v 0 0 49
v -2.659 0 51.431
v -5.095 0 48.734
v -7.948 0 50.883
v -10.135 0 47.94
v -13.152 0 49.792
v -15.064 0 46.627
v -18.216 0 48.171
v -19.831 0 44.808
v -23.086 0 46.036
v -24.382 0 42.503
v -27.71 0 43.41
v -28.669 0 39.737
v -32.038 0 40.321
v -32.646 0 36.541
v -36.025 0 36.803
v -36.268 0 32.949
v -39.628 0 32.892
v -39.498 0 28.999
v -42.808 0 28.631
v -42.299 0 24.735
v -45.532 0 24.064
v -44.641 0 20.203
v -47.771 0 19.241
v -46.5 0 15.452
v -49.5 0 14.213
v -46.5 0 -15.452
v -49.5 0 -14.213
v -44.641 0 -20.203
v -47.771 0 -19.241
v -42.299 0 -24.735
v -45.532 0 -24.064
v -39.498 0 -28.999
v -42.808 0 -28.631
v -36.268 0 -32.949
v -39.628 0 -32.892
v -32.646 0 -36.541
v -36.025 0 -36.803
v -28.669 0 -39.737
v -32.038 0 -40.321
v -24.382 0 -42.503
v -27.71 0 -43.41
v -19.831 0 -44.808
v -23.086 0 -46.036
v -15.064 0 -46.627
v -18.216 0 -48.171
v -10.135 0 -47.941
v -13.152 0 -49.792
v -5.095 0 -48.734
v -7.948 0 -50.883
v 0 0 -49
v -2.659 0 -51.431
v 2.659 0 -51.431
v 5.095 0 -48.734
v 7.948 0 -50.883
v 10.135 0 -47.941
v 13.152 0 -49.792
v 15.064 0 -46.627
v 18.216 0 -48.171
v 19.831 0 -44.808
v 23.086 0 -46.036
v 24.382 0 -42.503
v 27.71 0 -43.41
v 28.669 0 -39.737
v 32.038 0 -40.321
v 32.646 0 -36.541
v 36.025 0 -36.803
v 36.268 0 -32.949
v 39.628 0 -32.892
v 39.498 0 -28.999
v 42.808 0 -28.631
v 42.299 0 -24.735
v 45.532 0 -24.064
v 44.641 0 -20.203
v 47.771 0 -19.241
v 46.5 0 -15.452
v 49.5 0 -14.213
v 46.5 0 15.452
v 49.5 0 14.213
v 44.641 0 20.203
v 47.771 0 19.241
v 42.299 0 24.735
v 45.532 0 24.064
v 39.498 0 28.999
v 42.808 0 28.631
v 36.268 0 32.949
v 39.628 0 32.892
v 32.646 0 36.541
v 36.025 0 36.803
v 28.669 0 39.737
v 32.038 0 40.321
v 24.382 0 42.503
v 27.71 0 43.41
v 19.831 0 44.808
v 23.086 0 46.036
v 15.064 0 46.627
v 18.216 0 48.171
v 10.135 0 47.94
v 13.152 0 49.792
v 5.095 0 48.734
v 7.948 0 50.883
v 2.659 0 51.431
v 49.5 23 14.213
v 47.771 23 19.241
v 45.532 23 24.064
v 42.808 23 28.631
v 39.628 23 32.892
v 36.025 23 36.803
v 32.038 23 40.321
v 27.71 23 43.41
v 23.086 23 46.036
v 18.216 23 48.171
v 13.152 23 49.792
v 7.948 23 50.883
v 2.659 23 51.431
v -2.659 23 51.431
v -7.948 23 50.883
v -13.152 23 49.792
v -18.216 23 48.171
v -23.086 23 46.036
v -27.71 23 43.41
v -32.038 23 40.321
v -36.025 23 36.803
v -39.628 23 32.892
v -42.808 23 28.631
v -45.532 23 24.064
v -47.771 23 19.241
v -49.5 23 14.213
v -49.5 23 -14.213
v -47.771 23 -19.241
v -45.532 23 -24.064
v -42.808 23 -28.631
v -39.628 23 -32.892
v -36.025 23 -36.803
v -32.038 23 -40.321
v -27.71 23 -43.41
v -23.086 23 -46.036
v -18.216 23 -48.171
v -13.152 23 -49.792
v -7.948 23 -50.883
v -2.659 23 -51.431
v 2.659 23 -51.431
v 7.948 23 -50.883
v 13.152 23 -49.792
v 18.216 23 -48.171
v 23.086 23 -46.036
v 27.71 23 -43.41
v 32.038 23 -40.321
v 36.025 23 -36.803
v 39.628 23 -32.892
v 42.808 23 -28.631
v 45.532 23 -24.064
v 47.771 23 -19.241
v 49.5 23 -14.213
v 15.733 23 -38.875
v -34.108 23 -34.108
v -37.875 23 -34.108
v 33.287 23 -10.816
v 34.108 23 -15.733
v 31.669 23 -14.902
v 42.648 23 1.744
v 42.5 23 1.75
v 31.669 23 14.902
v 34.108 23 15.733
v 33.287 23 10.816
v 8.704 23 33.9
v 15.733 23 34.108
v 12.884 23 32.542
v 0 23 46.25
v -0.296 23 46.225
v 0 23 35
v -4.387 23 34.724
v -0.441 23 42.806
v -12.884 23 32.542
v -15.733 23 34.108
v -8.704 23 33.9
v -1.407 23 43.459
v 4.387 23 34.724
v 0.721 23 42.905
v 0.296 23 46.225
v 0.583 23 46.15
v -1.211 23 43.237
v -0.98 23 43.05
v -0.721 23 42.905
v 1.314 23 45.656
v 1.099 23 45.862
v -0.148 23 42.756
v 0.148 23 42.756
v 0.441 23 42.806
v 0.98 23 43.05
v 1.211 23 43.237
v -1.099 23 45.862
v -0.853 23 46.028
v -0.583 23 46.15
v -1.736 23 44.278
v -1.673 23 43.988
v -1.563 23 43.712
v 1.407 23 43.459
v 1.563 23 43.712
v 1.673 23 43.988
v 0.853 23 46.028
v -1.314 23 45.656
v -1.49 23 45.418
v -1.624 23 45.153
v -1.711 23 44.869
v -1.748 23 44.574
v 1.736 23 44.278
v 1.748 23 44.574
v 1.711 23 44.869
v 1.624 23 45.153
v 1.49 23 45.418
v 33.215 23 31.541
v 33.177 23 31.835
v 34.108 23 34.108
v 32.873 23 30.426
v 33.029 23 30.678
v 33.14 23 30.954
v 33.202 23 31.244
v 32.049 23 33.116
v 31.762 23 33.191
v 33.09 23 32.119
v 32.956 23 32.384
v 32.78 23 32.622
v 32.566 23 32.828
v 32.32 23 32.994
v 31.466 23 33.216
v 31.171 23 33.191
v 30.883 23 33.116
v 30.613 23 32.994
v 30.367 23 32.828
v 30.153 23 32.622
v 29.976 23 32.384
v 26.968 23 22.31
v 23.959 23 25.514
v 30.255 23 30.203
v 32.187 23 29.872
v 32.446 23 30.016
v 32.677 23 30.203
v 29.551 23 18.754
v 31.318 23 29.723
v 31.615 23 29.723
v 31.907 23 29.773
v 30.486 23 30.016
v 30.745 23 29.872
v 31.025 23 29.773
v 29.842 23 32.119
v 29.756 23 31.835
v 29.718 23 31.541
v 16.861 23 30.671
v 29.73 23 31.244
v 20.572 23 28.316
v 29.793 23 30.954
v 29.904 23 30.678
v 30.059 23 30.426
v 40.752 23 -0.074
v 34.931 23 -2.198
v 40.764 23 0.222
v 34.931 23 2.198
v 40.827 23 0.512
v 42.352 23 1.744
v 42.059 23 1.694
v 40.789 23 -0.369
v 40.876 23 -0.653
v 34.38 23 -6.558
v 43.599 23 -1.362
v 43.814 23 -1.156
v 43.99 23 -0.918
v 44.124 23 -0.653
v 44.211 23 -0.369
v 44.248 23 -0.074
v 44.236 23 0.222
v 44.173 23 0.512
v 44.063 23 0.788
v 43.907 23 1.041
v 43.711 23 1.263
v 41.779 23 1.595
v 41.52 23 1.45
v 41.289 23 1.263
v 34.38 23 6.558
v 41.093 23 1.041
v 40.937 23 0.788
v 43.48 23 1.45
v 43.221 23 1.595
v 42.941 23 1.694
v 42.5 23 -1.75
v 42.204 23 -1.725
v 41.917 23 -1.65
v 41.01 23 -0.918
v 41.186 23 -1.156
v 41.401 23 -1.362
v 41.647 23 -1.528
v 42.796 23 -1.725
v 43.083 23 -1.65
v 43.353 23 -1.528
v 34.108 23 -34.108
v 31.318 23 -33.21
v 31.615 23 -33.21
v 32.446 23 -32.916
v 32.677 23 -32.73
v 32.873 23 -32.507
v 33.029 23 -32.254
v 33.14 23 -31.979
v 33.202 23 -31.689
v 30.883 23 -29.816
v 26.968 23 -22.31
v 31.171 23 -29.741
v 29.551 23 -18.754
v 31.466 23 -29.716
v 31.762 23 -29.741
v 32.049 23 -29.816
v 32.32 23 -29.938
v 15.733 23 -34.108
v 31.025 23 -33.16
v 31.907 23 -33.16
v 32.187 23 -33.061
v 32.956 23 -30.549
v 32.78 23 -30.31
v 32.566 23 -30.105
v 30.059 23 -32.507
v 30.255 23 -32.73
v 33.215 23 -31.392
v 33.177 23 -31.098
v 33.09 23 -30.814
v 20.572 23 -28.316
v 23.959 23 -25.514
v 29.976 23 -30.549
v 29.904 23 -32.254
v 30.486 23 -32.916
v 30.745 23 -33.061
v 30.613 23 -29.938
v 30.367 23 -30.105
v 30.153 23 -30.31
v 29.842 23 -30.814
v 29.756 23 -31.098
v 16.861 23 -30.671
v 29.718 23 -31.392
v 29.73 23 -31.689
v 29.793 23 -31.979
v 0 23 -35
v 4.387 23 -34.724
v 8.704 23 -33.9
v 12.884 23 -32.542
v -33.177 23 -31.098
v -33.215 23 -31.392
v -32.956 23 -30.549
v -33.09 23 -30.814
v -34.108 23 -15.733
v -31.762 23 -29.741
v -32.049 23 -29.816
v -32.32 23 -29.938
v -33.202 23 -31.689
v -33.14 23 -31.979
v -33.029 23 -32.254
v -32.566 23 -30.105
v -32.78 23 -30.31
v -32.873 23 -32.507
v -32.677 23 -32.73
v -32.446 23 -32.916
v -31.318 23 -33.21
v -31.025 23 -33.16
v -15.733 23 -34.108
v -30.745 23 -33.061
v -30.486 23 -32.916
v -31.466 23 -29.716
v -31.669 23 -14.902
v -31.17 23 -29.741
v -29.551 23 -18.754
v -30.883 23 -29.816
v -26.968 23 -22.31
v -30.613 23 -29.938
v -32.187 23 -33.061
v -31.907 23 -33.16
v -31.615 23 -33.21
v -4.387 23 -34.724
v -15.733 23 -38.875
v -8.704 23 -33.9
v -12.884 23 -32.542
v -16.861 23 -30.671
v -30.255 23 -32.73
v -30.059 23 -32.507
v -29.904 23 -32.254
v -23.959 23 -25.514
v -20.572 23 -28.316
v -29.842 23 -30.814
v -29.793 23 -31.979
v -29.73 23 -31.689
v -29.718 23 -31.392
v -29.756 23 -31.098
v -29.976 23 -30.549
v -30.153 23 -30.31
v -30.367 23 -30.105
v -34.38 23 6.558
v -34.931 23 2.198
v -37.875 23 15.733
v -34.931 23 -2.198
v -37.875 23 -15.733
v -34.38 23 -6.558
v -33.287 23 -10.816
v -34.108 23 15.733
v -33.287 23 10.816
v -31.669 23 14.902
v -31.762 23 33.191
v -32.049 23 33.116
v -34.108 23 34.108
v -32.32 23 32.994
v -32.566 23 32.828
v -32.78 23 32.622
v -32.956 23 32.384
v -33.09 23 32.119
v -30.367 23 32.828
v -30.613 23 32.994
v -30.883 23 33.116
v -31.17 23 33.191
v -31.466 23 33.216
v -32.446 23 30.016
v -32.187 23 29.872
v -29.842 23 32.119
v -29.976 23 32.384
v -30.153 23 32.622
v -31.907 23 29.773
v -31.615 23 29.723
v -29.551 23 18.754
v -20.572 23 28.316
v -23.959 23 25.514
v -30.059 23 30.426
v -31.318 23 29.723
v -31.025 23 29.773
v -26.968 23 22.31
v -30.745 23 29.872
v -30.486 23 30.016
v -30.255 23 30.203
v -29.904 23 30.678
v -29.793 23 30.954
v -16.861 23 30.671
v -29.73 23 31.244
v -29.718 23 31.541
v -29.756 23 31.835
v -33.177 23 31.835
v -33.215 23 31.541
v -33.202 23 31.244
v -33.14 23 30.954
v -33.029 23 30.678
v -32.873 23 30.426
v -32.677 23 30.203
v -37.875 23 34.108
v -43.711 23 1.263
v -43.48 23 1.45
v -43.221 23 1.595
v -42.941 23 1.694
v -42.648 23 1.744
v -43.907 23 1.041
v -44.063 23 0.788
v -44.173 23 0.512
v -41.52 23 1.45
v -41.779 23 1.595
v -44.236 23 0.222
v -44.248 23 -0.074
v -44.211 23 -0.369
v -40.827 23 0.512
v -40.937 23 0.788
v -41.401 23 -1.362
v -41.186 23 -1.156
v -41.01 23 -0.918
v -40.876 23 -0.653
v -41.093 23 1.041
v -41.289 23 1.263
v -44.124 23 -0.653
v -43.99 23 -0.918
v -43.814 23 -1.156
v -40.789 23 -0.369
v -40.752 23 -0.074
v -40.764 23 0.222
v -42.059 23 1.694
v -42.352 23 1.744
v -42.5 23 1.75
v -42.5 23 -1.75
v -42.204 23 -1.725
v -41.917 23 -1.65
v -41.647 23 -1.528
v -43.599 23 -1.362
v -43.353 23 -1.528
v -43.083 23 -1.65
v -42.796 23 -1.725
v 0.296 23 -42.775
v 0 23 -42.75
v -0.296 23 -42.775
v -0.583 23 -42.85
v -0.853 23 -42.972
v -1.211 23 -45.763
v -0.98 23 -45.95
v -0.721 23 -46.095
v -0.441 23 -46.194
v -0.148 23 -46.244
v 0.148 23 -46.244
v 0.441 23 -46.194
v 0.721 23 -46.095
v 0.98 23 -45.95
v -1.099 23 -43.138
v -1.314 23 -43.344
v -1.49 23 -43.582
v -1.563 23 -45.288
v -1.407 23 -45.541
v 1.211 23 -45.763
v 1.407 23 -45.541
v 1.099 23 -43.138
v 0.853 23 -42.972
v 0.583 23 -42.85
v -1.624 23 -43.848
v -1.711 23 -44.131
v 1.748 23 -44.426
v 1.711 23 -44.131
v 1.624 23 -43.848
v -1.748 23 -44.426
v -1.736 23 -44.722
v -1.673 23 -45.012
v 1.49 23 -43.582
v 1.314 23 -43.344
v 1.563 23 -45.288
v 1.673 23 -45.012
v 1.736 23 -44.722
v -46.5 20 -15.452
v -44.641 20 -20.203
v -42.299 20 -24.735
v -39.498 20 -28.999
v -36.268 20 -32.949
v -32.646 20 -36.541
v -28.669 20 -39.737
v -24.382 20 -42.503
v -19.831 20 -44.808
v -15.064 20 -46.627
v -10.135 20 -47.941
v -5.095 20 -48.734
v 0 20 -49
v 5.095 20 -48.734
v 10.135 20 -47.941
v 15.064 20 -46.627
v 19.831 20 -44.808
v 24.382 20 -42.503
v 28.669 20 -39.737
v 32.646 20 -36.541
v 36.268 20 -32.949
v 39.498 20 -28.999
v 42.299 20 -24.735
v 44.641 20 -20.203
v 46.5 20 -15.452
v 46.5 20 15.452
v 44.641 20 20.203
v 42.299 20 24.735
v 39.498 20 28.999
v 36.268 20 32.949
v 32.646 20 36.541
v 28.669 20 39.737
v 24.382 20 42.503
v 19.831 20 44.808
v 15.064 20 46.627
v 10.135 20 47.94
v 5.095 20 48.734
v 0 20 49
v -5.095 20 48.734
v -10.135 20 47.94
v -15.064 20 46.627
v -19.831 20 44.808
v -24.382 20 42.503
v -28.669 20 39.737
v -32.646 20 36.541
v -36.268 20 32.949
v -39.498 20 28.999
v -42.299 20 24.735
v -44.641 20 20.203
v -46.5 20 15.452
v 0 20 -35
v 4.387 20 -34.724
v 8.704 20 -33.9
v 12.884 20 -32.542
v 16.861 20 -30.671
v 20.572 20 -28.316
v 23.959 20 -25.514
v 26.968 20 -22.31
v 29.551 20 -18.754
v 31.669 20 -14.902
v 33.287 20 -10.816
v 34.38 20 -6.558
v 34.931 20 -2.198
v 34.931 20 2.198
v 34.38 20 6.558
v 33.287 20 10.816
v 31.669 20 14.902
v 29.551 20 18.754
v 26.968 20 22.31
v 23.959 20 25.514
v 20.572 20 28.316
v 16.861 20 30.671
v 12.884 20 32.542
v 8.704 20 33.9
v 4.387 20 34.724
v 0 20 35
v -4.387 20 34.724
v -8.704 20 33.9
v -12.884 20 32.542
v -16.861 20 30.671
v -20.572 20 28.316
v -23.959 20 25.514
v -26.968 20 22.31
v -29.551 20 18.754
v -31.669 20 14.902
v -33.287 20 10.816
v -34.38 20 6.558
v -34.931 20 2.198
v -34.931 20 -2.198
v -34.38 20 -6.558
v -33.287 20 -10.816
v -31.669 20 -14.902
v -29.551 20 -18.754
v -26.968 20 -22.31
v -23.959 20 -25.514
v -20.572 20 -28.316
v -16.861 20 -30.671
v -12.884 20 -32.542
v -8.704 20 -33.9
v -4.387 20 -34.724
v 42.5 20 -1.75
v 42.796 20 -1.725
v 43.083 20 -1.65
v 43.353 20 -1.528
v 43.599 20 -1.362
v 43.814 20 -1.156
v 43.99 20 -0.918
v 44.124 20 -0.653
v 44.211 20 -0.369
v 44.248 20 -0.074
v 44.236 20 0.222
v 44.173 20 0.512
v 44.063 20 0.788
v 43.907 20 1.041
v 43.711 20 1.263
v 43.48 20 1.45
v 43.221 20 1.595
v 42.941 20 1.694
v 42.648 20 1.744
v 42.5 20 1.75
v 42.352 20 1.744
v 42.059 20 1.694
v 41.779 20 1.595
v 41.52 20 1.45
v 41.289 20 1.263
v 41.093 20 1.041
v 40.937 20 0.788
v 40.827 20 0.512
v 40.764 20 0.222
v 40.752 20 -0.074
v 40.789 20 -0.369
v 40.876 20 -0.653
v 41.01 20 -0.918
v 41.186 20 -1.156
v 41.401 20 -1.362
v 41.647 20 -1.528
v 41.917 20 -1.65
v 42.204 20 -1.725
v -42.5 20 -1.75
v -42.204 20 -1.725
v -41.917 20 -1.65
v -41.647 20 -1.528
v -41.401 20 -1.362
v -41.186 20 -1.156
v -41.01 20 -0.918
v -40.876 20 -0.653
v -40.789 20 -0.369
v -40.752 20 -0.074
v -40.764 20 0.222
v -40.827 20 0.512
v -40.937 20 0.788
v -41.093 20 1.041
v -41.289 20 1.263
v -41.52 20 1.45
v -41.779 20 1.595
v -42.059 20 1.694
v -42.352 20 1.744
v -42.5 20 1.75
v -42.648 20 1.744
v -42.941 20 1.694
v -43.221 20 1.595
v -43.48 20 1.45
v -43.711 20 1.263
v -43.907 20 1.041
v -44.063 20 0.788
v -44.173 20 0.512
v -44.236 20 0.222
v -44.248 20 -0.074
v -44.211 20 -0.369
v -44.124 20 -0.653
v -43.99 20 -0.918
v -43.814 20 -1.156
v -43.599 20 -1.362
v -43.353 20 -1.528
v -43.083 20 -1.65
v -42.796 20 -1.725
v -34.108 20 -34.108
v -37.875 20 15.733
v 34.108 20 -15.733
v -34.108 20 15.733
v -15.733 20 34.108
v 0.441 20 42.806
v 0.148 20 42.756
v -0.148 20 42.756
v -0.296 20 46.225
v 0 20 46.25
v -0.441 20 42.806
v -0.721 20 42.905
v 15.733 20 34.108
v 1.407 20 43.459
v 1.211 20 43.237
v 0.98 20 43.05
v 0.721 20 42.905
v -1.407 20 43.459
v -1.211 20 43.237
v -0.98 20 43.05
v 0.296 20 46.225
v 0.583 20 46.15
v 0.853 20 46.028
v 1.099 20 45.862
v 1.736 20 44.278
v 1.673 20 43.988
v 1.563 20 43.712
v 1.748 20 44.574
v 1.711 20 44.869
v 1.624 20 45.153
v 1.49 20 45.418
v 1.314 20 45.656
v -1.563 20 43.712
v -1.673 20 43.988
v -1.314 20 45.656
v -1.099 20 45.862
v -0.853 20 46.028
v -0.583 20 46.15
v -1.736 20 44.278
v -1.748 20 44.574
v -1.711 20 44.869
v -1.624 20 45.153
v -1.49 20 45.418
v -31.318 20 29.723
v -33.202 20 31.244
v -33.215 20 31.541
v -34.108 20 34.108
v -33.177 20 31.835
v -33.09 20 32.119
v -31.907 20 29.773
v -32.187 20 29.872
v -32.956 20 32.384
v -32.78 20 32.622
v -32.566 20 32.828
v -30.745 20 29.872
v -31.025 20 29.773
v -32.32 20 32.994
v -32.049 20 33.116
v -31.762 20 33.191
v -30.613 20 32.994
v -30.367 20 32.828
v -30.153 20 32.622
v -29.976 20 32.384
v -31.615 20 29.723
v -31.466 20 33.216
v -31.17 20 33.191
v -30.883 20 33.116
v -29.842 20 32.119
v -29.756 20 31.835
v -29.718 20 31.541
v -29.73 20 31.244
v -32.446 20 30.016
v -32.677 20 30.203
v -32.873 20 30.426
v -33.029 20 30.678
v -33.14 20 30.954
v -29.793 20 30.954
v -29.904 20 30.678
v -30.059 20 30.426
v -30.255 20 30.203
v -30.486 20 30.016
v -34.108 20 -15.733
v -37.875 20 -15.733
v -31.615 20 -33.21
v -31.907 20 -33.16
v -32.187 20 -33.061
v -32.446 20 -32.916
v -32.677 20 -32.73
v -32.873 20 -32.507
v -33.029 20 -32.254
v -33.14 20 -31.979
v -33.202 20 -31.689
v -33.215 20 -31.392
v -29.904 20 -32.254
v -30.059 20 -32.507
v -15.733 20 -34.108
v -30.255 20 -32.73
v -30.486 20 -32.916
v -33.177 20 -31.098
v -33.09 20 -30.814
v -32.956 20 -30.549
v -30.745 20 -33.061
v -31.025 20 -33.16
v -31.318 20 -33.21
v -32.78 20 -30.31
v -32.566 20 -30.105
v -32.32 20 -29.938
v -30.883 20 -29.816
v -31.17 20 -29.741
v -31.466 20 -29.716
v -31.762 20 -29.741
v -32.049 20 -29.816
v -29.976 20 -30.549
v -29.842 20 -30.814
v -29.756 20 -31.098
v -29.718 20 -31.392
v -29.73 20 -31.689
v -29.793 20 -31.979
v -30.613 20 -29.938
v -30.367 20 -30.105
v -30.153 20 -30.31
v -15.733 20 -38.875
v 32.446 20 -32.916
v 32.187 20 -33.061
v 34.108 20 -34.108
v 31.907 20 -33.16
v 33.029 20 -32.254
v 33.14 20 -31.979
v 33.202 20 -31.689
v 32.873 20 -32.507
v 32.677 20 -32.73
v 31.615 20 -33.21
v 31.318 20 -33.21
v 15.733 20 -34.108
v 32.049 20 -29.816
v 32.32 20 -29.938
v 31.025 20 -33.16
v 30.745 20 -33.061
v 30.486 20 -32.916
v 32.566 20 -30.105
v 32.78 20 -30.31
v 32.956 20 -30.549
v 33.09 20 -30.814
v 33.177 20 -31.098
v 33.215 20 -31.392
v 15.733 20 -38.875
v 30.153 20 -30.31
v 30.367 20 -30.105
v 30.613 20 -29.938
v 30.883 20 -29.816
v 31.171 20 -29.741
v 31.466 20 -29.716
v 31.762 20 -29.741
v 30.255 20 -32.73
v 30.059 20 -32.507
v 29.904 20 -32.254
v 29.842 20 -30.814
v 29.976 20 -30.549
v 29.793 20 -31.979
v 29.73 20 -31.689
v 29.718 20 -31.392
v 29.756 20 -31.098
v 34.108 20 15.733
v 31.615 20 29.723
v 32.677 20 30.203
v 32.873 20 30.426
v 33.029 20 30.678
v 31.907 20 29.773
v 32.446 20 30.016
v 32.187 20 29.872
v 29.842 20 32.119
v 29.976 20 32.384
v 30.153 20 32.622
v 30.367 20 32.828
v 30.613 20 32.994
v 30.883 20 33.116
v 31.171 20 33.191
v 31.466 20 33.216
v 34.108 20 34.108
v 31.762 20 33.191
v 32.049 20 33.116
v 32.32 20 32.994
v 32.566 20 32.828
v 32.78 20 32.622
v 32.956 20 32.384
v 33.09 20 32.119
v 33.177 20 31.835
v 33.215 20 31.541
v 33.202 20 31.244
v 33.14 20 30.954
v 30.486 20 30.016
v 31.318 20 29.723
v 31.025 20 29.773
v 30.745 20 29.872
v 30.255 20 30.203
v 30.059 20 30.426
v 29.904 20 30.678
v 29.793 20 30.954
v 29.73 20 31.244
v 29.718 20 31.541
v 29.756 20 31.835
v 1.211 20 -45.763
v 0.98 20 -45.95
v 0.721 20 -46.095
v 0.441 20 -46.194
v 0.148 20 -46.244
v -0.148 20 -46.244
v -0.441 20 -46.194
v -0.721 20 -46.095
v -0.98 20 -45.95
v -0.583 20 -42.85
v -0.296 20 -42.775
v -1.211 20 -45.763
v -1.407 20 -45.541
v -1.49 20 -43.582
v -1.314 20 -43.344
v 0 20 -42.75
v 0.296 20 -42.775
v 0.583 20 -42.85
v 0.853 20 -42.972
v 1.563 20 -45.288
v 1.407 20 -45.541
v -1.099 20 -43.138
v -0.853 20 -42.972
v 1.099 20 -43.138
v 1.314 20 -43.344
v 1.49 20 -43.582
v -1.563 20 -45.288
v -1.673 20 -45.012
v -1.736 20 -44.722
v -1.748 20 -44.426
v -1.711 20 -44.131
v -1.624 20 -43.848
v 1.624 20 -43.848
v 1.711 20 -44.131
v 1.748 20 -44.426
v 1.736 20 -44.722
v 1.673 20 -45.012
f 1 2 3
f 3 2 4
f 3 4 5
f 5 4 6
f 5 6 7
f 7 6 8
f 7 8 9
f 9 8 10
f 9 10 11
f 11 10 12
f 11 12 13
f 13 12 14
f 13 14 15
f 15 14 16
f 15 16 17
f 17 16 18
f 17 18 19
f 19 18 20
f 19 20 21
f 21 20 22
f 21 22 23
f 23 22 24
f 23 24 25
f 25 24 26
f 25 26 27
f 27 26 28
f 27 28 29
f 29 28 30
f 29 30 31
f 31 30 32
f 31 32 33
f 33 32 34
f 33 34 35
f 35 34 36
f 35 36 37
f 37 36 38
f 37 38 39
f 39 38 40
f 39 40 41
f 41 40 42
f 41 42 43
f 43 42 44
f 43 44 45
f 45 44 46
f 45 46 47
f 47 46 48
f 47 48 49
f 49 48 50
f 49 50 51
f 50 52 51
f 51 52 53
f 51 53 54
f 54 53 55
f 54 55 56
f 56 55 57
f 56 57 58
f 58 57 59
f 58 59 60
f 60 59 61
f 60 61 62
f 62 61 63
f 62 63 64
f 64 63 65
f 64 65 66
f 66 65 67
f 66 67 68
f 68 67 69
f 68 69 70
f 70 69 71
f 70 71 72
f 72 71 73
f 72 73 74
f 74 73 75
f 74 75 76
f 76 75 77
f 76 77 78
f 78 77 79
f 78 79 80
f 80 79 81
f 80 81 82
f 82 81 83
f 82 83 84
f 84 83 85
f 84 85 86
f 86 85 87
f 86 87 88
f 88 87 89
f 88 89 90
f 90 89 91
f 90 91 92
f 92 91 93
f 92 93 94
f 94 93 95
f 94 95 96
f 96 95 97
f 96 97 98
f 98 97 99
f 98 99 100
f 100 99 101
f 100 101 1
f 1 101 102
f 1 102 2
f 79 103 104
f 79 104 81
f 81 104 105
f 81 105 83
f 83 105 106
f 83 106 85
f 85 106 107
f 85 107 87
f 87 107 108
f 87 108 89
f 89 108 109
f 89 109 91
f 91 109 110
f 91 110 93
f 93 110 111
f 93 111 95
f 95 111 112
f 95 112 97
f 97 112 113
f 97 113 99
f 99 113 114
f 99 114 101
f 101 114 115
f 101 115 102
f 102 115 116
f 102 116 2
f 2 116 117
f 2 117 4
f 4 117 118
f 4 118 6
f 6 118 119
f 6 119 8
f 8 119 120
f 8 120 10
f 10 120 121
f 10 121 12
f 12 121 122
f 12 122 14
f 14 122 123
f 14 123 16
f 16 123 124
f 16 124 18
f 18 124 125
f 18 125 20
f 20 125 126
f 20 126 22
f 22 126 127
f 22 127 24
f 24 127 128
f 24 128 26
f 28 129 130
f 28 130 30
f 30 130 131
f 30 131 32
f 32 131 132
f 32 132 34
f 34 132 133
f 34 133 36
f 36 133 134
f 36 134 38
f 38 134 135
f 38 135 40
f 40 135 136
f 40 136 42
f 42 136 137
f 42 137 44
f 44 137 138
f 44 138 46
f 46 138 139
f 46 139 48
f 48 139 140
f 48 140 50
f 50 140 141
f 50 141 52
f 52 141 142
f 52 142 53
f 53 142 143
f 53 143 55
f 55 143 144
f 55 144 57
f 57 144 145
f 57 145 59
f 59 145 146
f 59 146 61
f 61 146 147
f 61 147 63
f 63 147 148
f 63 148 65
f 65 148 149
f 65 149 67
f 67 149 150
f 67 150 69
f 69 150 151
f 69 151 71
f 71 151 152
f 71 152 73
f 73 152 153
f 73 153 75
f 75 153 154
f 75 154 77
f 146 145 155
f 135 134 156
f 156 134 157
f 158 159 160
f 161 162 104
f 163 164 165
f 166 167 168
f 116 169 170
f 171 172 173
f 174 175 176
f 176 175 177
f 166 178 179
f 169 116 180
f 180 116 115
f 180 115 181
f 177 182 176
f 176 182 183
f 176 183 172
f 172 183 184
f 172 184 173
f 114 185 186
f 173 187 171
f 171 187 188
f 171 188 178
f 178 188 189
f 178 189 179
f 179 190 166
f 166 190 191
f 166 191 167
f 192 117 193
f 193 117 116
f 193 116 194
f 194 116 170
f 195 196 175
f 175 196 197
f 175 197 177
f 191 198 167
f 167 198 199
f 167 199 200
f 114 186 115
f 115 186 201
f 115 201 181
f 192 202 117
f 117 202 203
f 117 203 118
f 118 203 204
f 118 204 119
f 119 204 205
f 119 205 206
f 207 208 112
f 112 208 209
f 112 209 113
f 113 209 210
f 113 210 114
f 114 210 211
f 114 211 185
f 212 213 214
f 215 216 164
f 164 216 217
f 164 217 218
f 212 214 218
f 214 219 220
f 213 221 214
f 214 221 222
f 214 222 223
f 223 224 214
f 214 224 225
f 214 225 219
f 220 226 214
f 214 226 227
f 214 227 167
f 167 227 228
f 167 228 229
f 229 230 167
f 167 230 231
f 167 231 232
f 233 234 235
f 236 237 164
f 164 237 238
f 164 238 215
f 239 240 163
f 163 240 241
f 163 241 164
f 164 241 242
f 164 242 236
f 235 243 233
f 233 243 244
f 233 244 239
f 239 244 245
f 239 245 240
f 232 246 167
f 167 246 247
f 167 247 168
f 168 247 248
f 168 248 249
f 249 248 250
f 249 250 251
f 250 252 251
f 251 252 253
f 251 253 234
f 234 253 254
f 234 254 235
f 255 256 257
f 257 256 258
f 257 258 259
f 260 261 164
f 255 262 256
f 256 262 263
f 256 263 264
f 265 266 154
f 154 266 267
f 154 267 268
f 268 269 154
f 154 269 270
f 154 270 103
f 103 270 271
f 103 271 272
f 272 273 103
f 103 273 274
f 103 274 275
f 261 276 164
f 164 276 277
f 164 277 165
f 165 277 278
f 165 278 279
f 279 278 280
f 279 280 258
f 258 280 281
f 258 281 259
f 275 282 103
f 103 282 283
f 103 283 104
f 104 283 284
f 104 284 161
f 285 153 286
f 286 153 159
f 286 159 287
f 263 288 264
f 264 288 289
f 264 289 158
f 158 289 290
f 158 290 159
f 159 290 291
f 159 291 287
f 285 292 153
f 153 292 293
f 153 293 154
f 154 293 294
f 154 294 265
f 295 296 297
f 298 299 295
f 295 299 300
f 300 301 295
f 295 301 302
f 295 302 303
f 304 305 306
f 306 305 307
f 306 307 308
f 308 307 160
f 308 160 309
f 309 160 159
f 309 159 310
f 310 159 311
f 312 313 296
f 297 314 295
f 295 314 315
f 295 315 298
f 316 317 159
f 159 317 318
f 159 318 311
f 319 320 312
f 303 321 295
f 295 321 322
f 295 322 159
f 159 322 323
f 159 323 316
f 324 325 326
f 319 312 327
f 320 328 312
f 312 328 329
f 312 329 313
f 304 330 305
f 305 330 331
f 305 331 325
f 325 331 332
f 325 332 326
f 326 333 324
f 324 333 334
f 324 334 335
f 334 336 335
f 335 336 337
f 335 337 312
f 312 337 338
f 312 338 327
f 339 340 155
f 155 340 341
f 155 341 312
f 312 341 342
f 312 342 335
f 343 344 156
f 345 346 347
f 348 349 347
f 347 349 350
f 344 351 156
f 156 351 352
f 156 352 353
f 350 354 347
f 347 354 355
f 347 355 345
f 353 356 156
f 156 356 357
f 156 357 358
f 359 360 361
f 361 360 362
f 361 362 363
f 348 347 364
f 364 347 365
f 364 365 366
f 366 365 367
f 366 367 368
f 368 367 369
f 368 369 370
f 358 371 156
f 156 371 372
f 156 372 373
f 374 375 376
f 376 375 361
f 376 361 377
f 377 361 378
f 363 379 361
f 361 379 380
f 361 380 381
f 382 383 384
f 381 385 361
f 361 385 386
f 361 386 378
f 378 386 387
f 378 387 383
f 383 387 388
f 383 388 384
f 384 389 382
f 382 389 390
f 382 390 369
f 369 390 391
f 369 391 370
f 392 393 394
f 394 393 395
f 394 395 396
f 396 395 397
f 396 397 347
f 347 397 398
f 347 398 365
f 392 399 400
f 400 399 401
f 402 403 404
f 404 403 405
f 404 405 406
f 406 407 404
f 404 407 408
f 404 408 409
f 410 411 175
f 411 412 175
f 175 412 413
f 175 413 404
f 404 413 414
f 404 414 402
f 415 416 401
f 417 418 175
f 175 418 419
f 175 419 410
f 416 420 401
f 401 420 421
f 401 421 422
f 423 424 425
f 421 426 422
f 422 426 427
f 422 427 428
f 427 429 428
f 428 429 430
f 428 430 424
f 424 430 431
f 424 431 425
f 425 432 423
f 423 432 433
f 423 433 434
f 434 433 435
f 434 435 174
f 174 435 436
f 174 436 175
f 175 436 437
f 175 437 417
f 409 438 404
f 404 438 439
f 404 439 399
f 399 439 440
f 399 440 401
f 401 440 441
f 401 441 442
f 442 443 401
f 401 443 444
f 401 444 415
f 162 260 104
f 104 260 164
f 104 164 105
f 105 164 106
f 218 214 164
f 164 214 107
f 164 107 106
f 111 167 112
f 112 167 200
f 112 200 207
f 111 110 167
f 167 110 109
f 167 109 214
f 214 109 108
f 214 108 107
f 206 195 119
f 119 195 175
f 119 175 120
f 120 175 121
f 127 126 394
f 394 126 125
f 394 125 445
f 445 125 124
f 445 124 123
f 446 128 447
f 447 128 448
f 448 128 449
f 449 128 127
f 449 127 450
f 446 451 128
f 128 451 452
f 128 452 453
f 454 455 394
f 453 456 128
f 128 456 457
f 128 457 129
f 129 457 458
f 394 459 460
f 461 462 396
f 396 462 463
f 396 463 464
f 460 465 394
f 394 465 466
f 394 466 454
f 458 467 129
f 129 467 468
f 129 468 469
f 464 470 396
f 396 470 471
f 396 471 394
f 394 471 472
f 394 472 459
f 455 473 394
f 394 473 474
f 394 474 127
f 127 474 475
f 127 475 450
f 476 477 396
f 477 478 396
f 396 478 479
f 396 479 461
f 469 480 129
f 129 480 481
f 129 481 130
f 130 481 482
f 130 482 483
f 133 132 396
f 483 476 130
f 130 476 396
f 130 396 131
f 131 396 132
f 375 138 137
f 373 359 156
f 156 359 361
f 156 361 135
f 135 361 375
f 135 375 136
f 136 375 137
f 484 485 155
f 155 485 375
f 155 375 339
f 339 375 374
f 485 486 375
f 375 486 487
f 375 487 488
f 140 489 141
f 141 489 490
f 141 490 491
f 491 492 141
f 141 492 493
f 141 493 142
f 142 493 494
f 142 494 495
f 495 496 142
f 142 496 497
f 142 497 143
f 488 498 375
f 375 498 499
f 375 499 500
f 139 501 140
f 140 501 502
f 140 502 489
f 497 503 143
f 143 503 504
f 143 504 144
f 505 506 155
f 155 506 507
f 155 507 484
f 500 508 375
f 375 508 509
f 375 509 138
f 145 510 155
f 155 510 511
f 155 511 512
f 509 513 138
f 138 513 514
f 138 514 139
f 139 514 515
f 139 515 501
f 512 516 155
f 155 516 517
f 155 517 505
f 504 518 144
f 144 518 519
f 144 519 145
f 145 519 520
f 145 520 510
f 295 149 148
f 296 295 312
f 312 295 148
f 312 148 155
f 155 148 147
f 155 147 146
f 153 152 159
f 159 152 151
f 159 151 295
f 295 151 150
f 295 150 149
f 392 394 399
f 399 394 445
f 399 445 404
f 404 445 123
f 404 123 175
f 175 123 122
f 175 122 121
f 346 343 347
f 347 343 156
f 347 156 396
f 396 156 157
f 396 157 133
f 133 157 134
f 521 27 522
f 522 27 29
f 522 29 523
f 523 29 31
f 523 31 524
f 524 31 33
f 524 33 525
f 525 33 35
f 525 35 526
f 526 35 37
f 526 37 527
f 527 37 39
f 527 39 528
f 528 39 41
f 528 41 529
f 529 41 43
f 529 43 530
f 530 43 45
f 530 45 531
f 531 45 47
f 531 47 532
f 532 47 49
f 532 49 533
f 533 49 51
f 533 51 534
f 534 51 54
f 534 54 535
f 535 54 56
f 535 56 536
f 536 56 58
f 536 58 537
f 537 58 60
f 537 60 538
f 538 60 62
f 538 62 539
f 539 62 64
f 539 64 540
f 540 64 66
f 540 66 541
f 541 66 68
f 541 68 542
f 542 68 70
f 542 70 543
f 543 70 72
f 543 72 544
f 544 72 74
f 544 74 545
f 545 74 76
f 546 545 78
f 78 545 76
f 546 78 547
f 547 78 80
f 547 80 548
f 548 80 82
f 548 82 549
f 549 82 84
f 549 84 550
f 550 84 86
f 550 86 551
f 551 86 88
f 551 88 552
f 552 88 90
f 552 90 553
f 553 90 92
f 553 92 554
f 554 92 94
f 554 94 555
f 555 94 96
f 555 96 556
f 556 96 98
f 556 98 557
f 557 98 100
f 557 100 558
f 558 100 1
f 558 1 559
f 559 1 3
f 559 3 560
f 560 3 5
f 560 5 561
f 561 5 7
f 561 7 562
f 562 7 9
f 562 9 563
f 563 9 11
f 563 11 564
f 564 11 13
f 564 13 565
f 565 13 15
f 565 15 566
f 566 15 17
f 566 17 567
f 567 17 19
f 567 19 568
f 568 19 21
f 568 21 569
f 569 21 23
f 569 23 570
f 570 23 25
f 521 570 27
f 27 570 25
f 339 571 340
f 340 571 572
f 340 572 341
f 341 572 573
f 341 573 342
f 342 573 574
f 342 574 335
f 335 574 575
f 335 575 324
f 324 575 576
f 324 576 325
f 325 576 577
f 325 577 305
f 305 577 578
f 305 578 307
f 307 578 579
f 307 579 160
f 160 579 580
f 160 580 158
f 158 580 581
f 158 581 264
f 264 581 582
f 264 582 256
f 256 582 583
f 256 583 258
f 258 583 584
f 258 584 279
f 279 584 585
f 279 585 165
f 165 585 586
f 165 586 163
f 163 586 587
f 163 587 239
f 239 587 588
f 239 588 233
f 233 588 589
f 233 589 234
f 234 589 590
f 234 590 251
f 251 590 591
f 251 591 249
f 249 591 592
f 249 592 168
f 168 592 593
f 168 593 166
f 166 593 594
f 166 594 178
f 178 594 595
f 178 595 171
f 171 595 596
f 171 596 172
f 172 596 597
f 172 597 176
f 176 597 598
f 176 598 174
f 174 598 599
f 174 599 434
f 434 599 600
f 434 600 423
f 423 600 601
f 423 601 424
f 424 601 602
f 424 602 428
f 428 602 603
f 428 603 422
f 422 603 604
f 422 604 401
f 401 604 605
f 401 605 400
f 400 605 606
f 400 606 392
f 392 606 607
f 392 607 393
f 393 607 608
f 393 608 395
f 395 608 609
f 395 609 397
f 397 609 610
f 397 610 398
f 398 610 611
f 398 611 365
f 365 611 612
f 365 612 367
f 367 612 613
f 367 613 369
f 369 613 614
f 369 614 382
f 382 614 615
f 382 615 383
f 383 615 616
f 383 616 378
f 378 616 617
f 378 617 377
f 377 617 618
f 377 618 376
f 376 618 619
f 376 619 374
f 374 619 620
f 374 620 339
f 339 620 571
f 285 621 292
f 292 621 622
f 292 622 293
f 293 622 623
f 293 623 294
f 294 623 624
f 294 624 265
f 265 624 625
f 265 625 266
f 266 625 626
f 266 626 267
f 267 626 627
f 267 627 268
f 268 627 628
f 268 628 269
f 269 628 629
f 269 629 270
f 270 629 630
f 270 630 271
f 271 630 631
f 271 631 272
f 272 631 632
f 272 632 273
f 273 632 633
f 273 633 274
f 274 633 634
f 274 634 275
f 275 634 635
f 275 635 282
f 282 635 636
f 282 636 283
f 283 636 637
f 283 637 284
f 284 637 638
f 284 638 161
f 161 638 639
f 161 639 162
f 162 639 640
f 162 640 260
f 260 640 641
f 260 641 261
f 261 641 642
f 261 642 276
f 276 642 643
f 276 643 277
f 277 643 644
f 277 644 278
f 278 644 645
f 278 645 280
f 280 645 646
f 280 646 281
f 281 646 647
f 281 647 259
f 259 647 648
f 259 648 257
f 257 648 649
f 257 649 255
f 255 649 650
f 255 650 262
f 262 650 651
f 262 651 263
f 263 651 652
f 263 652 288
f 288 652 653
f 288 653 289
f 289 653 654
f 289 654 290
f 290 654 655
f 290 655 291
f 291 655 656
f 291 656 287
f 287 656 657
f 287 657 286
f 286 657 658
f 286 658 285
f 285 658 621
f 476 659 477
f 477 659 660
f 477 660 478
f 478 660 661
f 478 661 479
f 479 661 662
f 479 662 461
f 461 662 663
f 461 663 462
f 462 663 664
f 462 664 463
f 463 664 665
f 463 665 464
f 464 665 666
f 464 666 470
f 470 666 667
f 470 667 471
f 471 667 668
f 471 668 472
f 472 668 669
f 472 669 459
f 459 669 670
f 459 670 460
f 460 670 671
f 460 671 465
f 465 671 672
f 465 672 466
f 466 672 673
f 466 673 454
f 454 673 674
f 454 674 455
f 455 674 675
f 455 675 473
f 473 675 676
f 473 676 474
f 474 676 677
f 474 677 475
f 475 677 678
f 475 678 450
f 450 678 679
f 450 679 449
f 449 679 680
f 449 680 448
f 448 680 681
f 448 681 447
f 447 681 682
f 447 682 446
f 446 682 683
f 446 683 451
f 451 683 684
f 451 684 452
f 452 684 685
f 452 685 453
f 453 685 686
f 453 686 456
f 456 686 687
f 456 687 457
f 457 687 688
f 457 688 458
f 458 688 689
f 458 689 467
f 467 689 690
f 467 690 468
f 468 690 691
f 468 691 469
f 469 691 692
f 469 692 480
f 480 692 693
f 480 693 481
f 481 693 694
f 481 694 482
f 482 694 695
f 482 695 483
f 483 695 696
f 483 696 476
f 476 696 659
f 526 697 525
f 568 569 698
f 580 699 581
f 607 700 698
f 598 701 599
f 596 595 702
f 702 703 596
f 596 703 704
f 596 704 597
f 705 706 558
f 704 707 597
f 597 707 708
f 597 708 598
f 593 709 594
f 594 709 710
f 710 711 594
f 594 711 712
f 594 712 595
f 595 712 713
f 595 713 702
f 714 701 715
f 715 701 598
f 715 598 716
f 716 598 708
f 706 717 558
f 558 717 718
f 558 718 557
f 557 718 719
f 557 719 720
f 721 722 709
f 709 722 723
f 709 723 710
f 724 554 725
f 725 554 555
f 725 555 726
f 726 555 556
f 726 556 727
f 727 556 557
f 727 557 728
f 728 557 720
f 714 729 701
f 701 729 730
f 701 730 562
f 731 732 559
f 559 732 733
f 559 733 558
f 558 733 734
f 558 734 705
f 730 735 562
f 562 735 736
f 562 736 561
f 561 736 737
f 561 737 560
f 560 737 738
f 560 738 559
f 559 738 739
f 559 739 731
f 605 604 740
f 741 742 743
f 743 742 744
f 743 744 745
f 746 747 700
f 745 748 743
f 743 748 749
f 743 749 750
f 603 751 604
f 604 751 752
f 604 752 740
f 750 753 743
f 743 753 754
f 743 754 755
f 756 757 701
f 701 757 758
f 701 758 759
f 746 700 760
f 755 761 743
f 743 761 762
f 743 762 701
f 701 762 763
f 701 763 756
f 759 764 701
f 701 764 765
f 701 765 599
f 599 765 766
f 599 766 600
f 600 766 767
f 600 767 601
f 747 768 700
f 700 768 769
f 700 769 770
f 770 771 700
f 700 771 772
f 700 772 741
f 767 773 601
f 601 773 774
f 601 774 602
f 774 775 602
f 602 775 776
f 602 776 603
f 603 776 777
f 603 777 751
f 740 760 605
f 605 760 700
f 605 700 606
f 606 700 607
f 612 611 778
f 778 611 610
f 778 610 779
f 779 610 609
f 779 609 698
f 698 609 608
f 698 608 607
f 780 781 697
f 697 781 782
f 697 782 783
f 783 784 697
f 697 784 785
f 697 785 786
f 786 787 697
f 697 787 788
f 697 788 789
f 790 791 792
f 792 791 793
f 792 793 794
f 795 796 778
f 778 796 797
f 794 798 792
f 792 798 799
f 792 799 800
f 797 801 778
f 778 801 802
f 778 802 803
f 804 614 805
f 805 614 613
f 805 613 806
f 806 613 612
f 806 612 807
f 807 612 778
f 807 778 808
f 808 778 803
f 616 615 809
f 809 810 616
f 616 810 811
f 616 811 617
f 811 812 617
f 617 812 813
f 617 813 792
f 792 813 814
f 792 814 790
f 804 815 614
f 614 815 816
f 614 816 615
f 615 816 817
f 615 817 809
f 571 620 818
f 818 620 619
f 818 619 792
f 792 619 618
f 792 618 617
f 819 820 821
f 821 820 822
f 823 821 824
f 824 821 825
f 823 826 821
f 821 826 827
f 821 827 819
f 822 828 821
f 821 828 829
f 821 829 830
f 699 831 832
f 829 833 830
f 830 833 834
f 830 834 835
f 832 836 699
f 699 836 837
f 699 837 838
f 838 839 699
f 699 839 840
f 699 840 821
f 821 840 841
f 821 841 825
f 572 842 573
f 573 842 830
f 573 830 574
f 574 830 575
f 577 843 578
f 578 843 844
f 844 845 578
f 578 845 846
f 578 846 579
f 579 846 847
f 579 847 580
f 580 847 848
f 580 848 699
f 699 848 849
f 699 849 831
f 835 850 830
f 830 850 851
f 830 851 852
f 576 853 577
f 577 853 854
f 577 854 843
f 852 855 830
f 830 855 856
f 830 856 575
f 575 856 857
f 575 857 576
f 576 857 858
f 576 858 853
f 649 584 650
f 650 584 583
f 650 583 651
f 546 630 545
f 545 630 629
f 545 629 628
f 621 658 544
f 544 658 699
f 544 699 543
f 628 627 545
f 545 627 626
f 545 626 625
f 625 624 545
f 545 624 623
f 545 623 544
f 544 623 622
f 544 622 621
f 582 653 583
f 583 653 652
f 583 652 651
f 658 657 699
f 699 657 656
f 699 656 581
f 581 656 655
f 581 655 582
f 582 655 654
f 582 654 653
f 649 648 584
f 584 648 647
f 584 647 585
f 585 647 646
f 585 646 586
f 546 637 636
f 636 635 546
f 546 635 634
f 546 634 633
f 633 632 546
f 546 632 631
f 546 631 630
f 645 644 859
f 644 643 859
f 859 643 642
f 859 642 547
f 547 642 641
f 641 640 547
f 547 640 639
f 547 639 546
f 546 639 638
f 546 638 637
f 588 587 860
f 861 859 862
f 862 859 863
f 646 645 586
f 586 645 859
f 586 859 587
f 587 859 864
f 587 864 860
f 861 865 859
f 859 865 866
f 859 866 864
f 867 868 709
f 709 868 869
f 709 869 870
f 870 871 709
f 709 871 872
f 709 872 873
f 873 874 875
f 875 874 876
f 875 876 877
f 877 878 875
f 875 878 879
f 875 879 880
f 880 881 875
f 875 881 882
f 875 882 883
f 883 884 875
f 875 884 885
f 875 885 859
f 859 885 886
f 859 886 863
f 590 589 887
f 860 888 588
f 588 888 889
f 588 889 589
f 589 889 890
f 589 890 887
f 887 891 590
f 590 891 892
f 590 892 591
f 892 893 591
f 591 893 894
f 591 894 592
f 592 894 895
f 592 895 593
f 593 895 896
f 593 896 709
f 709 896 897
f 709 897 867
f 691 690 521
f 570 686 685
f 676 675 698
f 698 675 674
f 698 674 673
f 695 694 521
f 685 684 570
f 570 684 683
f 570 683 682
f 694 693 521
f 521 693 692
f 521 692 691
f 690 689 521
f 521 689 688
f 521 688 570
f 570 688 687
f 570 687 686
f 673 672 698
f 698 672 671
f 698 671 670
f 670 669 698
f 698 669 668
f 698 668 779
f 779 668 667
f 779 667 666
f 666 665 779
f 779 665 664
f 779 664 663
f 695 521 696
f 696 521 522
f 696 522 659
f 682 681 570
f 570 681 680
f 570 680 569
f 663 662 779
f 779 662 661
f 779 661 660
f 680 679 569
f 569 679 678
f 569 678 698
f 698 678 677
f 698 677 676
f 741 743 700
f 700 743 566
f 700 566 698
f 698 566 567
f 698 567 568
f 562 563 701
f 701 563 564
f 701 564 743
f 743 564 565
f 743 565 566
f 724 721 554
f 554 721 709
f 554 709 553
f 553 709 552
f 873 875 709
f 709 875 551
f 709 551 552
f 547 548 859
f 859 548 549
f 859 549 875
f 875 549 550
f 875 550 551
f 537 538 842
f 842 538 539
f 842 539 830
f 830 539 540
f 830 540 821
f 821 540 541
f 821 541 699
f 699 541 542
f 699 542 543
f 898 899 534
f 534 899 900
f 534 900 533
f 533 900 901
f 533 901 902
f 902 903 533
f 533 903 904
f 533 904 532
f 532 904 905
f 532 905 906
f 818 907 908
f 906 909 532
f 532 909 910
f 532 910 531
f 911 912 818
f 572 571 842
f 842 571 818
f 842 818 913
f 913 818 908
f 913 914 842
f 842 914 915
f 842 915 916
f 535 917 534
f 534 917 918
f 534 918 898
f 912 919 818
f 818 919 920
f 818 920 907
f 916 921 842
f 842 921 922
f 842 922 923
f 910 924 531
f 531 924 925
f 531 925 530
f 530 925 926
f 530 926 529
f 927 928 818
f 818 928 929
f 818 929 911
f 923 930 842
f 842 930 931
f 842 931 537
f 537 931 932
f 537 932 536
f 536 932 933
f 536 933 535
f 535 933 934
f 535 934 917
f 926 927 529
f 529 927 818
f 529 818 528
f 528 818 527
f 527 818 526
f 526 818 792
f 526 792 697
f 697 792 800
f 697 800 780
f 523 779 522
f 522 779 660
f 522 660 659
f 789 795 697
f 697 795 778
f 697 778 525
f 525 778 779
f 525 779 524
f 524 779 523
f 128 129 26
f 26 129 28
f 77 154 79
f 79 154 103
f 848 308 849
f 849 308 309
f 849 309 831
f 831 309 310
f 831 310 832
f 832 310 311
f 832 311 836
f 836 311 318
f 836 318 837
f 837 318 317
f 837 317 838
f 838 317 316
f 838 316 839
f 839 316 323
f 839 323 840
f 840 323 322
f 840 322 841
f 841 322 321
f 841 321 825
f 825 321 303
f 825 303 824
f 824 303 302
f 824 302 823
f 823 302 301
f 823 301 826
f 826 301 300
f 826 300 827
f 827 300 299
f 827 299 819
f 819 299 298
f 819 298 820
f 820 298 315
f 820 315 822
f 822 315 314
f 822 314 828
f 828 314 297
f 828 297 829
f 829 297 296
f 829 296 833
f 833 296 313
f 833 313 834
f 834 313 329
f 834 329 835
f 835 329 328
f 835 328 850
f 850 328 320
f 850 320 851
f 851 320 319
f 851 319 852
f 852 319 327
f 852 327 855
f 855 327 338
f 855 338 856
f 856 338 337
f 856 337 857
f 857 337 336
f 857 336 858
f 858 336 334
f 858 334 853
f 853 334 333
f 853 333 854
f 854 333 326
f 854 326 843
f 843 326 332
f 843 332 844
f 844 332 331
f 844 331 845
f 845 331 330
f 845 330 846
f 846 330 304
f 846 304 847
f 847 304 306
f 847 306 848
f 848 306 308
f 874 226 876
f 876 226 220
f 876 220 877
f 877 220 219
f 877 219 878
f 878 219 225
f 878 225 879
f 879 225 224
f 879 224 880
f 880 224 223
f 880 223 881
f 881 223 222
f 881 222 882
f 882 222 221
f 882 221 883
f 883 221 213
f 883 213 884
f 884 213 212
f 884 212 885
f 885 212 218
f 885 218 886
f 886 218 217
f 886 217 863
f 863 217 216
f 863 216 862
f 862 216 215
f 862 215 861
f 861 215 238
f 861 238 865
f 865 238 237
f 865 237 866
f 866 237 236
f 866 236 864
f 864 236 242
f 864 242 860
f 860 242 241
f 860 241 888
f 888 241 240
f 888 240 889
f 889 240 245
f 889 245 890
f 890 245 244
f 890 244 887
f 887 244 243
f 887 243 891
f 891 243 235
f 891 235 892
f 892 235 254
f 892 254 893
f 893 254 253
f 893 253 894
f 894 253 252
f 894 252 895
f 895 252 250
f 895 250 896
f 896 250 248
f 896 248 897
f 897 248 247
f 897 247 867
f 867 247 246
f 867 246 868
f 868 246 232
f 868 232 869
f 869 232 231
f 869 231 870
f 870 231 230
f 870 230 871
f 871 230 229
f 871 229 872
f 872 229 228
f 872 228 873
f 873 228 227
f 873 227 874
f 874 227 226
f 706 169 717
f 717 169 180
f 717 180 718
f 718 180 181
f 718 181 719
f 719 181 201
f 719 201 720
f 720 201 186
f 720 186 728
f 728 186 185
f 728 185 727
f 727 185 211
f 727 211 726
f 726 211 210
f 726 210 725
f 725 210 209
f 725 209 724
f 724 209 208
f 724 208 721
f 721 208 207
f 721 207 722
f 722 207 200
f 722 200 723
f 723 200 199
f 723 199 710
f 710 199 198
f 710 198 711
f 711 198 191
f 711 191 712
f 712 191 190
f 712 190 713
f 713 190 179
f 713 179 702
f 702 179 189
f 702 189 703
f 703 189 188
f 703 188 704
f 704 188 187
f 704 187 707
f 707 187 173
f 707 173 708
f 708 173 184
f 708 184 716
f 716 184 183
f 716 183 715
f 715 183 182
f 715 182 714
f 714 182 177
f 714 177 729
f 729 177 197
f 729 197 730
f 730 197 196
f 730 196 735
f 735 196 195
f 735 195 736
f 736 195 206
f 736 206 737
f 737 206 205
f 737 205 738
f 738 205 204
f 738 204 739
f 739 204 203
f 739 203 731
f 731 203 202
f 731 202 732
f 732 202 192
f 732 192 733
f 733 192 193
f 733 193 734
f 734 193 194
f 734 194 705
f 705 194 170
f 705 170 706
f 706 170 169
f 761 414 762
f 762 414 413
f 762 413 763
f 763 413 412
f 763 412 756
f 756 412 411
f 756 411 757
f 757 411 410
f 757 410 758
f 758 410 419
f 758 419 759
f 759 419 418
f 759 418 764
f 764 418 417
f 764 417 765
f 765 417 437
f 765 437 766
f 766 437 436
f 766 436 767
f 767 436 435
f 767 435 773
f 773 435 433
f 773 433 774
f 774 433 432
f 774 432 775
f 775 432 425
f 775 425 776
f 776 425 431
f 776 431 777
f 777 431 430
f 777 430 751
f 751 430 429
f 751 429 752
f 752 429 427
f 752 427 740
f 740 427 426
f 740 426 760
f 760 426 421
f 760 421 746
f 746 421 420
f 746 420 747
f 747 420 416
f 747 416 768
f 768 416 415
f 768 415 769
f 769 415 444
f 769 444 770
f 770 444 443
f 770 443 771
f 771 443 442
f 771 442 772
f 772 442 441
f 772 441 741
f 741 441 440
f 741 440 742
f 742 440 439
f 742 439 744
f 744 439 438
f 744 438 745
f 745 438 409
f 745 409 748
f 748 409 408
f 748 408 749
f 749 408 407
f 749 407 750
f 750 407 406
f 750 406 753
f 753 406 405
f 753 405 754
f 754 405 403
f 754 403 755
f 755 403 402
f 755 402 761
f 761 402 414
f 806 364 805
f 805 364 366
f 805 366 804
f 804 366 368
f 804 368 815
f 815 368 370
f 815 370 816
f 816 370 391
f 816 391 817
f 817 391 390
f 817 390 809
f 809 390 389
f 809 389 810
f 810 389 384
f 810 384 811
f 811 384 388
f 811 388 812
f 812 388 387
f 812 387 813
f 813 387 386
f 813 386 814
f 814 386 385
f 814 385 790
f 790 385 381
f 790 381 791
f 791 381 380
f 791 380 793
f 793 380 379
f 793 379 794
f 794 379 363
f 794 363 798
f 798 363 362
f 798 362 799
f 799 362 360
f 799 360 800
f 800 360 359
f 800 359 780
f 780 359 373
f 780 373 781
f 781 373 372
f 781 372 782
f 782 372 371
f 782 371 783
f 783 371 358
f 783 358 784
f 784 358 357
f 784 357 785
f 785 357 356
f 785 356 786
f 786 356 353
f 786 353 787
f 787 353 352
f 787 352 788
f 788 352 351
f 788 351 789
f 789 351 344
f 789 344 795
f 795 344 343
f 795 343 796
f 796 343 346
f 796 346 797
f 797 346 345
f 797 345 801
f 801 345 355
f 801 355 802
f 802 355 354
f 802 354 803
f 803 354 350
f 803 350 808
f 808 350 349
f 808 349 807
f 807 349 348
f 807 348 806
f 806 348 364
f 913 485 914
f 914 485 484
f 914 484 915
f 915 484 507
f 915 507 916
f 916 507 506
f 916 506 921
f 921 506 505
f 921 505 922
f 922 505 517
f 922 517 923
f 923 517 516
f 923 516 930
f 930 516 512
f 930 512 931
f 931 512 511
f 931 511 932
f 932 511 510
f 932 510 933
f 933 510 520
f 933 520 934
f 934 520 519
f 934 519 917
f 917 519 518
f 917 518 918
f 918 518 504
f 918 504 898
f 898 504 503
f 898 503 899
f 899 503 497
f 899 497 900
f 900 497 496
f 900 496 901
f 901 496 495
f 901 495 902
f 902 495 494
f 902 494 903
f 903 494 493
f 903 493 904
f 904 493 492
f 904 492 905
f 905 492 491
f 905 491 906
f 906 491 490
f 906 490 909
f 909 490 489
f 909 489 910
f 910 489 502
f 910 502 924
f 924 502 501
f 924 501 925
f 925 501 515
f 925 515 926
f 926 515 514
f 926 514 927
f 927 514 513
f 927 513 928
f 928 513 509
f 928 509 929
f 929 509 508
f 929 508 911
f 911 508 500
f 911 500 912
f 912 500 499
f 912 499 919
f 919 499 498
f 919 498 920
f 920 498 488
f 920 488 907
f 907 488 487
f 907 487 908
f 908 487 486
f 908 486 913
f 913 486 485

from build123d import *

# Parameters (mm, degrees)
SKETCH_1_R          = 52
EXTRUDE_1_DEPTH     = 20
CUT_EXTRUDE_START   = -20
SKETCH_2_R          = 52
SKETCH_2_R_2        = 51.5
CUT_EXTRUDE_1_DEPTH = 20
SKETCH_3_R          = 51.5
SKETCH_3_R_2        = 1.75
SKETCH_3_R_3        = 35
EXTRUDE_2_DEPTH     = 3
SKETCH_4_W          = 6.656096692
SKETCH_4_H          = 30.90307428
SKETCH_4_W_2        = 11.077487824
CUT_EXTRUDE_2_DEPTH = 77.377352664
EXTRUDE_START       = -3
SKETCH_6_R          = 1.75
SKETCH_6_R_2        = 1.891027651
EXTRUDE_3_DEPTH     = 3
SKETCH_7_R          = 1.75
CUT_EXTRUDE_3_DEPTH = 3


with BuildPart() as part:
    # 草图1 → 凸台-拉伸1 (new body)
    with BuildSketch(Plane(origin=(0, 0, 0), x_dir=(1, 0, 0), z_dir=(0, 1, 0))):
        with Locations(Location((0, 0, 0), (0, 0, 270))):
            Circle(SKETCH_1_R)
        with BuildLine():
            Line((-46.5, -15.45153714), (-46.5, 15.45153714))
            ThreePointArc((-46.5, 15.45153714), (0, 49), (46.5, 15.45153714))
            Line((46.5, 15.45153714), (46.5, -15.45153714))
            ThreePointArc((46.5, -15.45153714), (0, -49), (-46.5, -15.45153714))
        make_face(mode=Mode.SUBTRACT)
    extrude(amount=EXTRUDE_1_DEPTH)

    # 草图2 → 切除-拉伸1 (cut)
    with BuildSketch(Plane(origin=(0, 20, 0), x_dir=(1, 0, 0), z_dir=(0, 1, 0)).offset(CUT_EXTRUDE_START)):
        Circle(SKETCH_2_R)
        with Locations(Location((0, 0, 0), (0, 0, 270))):
            Circle(SKETCH_2_R_2, mode=Mode.SUBTRACT)
    extrude(amount=CUT_EXTRUDE_1_DEPTH, mode=Mode.SUBTRACT)

    # 草图3 → 凸台-拉伸2 (add)
    with BuildSketch(Plane(origin=(0, 20, 0), x_dir=(1, 0, 0), z_dir=(0, 1, 0))):
        with Locations(Location((0, 0, 0), (0, 0, 270))):
            Circle(SKETCH_3_R)
        with Locations(Location((0, 42.5, 0), (0, 0, 270))):
            Circle(SKETCH_3_R_2, mode=Mode.SUBTRACT)
        with Locations(Location((30.0520382, 30.0520382, 0), (0, 0, 270))):
            Circle(SKETCH_3_R_2, mode=Mode.SUBTRACT)
        with Locations(Location((42.5, 0, 0), (0, 0, 270))):
            Circle(SKETCH_3_R_2, mode=Mode.SUBTRACT)
        with Locations(Location((30.0520382, -30.0520382, 0), (0, 0, 270))):
            Circle(SKETCH_3_R_2, mode=Mode.SUBTRACT)
        with Locations(Location((0, -42.5, 0), (0, 0, 270))):
            Circle(SKETCH_3_R_2, mode=Mode.SUBTRACT)
        with Locations(Location((-30.0520382, -30.0520382, 0), (0, 0, 270))):
            Circle(SKETCH_3_R_2, mode=Mode.SUBTRACT)
        with Locations(Location((-42.5, 0, 0), (0, 0, 270))):
            Circle(SKETCH_3_R_2, mode=Mode.SUBTRACT)
        with Locations(Location((-30.0520382, 30.0520382, 0), (0, 0, 270))):
            Circle(SKETCH_3_R_2, mode=Mode.SUBTRACT)
        with Locations(Location((0, 0, 0), (0, 0, 270))):
            Circle(SKETCH_3_R_3, mode=Mode.SUBTRACT)
    extrude(amount=EXTRUDE_2_DEPTH)

    # 草图4 → 切除-拉伸2 (cut, through all)
    with BuildSketch(Plane.XZ):
        with Locations((-52.828048346, 0)):
            Rectangle(SKETCH_4_W, SKETCH_4_H)
        with Locations((55.038743912, 0)):
            Rectangle(SKETCH_4_W_2, SKETCH_4_H)
    extrude(amount=-CUT_EXTRUDE_2_DEPTH, mode=Mode.SUBTRACT)

    # 草图6 → 凸台-拉伸3 (add)
    with BuildSketch(Plane(origin=(0, 23, 0), x_dir=(1, 0, 0), z_dir=(0, 1, 0)).offset(EXTRUDE_START)):
        with Locations((-30.0520382, 30.0520382)):
            Circle(SKETCH_6_R)
        with Locations((0, 42.5)):
            Circle(SKETCH_6_R)
        with Locations((30.0520382, 30.0520382)):
            Circle(SKETCH_6_R)
        with Locations((30.0520382, -30.0520382)):
            Circle(SKETCH_6_R_2)
        with Locations((0, -42.5)):
            Circle(SKETCH_6_R)
        with Locations((-30.0520382, -30.0520382)):
            Circle(SKETCH_6_R)
    extrude(amount=EXTRUDE_3_DEPTH)

    # 草图7 → 切除-拉伸3 (cut)
    with BuildSketch(Plane(origin=(0, 23, 0), x_dir=(1, 0, 0), z_dir=(0, 1, 0))):
        with Locations(Location((0, 44.5, 0), (0, 0, 270))):
            Circle(SKETCH_7_R)
        with Locations(Location((31.466251763, 31.466251763, 0), (0, 0, 270))):
            Circle(SKETCH_7_R)
        with Locations(Location((31.466251763, -31.466251763, 0), (0, 0, 270))):
            Circle(SKETCH_7_R)
        with Locations(Location((0, -44.5, 0), (0, 0, 270))):
            Circle(SKETCH_7_R)
        with Locations(Location((-31.466251763, -31.466251763, 0), (0, 0, 270))):
            Circle(SKETCH_7_R)
        with Locations(Location((-31.466251763, 31.466251763, 0), (0, 0, 270))):
            Circle(SKETCH_7_R)
    extrude(amount=-CUT_EXTRUDE_3_DEPTH, mode=Mode.SUBTRACT)


solid = part.part
